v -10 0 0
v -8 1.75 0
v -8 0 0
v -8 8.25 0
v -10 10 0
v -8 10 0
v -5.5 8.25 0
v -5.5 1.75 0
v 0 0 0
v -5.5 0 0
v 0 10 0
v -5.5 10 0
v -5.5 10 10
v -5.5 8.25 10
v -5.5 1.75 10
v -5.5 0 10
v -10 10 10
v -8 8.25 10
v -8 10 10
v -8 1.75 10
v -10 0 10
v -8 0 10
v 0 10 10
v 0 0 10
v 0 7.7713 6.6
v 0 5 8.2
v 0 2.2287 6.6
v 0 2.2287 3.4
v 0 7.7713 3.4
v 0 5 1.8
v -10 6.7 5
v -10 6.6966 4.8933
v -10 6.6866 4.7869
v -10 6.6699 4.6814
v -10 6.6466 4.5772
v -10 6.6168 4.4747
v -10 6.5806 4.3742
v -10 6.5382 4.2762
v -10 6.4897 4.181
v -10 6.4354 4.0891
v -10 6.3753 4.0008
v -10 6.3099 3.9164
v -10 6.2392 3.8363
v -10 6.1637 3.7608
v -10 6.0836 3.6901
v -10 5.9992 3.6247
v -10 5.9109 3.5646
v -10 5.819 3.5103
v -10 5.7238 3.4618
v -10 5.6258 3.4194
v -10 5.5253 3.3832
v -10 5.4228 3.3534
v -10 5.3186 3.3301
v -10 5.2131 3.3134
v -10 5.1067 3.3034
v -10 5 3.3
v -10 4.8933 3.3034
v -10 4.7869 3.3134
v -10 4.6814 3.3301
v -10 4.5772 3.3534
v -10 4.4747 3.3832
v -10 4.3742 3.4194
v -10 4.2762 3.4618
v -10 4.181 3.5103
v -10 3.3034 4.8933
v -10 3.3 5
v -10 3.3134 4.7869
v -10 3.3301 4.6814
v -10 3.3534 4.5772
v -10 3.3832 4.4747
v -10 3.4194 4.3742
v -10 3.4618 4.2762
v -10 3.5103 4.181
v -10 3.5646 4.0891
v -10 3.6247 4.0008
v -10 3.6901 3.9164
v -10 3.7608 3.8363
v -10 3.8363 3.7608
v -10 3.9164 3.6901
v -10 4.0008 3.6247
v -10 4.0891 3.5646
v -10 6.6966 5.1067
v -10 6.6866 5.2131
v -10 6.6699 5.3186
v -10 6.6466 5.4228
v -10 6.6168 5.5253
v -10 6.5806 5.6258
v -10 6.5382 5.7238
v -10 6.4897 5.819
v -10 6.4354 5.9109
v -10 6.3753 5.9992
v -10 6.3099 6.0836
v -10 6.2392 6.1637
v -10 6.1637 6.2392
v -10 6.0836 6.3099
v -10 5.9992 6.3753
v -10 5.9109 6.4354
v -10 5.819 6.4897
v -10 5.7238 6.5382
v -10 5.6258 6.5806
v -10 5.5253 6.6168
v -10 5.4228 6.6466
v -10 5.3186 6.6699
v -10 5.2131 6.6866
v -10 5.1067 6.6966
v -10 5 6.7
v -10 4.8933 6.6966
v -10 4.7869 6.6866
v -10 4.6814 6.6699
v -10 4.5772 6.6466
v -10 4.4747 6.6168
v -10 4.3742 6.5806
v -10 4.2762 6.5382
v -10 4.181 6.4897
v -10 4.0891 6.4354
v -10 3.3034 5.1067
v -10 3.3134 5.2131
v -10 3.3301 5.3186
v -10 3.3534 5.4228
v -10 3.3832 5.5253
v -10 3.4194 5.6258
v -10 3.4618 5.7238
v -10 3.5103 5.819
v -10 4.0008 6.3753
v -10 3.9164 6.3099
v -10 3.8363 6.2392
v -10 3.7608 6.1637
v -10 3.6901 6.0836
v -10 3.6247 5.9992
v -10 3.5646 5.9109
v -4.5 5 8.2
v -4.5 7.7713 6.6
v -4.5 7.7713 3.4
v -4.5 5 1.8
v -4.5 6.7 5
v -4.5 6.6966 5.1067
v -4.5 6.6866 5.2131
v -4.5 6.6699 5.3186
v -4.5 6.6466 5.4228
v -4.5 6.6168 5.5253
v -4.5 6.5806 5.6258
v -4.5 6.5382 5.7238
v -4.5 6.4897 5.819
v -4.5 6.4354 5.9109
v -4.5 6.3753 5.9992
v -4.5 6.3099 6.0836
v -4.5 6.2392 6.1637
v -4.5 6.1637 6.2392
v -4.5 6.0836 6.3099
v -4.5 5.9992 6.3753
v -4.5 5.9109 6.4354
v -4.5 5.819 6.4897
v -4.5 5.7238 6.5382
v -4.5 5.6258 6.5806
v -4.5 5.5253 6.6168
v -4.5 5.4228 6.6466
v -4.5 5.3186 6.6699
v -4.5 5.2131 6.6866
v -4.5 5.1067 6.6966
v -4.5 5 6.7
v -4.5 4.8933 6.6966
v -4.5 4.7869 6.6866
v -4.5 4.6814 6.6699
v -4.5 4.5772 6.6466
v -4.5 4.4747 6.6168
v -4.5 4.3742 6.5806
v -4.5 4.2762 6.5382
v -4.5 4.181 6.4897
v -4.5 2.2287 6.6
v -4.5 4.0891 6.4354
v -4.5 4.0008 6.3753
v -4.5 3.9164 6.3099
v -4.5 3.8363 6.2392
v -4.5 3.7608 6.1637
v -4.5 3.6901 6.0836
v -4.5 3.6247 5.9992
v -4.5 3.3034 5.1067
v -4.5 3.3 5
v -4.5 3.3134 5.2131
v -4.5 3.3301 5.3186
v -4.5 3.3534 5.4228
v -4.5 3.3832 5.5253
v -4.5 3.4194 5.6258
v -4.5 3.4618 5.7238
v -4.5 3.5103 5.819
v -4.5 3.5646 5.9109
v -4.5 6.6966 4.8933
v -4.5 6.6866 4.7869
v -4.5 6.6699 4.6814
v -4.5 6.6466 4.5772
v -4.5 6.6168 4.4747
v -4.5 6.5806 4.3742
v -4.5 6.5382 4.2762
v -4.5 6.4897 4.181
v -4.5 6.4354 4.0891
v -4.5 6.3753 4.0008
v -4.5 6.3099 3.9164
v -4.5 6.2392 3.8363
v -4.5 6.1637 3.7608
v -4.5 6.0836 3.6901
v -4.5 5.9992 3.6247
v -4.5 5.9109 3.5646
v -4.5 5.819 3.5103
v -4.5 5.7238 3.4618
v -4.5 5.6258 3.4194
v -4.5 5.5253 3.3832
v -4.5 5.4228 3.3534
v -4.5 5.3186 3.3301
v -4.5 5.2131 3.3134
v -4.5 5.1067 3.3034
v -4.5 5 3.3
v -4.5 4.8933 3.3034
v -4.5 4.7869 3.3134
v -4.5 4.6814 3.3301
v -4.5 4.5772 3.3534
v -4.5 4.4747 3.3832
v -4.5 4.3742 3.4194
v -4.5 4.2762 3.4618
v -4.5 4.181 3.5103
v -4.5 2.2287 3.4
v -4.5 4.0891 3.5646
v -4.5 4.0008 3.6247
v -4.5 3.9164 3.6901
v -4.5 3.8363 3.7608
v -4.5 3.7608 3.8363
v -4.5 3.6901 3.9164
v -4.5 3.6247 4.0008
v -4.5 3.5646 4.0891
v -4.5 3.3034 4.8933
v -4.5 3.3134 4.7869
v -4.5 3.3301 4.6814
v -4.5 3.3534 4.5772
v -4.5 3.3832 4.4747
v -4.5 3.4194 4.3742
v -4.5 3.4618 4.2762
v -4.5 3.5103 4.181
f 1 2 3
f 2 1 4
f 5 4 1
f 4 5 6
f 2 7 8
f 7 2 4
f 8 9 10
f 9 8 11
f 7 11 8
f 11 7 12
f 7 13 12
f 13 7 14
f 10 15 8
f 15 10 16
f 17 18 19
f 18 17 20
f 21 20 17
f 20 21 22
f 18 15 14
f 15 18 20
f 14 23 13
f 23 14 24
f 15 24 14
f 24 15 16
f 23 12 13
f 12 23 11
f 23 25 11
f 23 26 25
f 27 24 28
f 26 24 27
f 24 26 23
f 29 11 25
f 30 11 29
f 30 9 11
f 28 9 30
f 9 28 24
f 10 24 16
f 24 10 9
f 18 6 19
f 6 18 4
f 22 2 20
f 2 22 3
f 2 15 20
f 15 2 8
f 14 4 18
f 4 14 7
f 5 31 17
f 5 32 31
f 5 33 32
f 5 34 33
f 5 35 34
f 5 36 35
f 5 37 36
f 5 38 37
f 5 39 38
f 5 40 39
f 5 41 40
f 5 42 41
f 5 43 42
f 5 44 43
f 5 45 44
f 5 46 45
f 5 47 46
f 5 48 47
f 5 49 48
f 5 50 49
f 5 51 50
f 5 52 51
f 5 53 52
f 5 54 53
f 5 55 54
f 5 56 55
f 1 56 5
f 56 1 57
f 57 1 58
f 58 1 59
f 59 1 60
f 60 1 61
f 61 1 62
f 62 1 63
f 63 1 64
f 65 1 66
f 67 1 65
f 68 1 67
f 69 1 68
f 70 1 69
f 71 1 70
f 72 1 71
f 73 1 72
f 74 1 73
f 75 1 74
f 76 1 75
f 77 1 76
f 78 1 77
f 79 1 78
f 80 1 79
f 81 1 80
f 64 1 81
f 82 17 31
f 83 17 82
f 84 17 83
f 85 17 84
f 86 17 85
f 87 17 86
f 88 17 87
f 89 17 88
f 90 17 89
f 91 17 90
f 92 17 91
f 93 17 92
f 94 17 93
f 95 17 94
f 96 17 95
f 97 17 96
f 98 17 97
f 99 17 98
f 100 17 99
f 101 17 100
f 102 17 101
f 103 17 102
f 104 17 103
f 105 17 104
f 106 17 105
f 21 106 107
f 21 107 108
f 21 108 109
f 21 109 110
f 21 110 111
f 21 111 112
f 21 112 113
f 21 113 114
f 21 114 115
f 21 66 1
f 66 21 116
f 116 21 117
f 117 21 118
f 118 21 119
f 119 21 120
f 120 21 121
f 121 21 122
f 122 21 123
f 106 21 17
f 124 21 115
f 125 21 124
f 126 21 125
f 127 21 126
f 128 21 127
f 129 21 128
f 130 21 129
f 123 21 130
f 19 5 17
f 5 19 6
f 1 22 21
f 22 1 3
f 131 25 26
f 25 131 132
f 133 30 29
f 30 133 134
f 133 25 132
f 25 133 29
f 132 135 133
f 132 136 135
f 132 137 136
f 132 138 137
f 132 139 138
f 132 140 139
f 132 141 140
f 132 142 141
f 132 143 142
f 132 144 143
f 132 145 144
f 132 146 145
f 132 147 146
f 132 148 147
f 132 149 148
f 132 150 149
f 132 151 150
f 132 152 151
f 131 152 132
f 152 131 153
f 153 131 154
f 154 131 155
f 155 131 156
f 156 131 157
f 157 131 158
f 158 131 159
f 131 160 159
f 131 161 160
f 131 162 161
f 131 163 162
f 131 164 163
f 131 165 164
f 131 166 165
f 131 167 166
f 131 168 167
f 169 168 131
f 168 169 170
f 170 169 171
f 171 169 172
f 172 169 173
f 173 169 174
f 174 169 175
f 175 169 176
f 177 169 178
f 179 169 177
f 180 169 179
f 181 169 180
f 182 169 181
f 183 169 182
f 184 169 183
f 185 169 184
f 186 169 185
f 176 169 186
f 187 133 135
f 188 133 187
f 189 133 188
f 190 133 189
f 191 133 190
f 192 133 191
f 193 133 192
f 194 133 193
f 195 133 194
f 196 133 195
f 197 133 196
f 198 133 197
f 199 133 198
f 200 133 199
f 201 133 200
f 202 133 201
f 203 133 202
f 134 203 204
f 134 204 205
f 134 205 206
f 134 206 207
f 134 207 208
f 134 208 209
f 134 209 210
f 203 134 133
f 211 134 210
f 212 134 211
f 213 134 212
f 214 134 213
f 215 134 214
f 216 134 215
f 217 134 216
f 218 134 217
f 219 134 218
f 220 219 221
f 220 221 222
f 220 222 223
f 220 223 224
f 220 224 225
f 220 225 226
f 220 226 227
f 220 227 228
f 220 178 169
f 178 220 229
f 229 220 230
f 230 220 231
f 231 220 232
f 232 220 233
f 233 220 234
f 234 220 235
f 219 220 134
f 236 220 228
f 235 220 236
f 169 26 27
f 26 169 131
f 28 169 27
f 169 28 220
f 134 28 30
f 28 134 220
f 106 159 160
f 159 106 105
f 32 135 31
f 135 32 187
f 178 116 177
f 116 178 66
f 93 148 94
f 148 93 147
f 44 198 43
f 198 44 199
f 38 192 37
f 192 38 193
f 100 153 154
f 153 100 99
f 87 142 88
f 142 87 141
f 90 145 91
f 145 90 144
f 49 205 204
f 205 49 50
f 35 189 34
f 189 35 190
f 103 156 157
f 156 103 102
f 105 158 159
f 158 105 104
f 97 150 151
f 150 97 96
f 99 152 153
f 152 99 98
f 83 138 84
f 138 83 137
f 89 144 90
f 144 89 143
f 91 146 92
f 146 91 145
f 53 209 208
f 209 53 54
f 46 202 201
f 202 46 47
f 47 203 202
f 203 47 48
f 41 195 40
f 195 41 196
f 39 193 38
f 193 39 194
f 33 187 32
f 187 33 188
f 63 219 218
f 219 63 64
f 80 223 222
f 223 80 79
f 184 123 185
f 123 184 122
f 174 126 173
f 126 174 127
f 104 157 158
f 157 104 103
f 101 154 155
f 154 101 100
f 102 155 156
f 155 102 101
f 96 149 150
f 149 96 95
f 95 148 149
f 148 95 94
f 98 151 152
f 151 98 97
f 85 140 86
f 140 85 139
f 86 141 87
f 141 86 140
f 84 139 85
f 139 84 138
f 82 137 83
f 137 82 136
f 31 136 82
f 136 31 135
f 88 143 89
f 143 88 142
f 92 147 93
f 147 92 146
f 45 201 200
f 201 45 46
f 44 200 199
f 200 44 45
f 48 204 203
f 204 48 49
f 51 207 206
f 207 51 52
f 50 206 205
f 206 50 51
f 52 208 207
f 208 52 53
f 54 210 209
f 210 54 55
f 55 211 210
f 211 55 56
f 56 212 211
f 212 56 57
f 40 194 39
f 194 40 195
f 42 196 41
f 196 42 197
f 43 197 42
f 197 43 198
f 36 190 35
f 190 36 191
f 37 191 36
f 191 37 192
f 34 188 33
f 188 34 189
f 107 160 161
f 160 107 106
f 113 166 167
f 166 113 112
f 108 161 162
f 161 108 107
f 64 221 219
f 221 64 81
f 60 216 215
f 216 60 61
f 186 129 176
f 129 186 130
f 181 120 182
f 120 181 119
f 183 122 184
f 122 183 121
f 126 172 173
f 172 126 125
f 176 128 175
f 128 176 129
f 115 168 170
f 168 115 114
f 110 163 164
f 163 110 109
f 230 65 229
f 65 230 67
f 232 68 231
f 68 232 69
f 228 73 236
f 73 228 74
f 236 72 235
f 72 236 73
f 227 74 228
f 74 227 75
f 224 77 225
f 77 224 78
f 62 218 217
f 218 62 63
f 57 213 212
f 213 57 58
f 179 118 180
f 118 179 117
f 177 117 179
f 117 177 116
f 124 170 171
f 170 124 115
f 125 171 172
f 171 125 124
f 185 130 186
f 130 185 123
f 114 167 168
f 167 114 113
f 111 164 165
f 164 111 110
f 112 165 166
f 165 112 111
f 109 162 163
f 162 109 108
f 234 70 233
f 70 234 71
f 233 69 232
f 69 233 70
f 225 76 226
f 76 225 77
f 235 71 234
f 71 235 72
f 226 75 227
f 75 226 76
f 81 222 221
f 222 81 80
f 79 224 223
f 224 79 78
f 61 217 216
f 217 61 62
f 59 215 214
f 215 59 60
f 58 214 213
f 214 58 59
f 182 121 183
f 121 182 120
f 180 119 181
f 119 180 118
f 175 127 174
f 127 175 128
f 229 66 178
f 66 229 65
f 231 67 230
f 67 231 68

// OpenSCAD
module main_mount(){
    cube([10,10,5.5]);
    translate([0,1.75,5.5])cube([10,6.5,2.5]);
    translate([0,0,8])cube([10,10,2]);
    }
    
module hole(){
    cylinder(h=3, r=3.5, $fn=6);
    translate([0,-3,0])cube([6,6,3]);
    }

module m3_hole(){
    translate([0,0,-3])cylinder(r=3.2, h=6, $fn=6);
    cylinder(r=1.6,h=30,$fn=100);
    }

module main(){
difference(){
    main_mount();
    translate([5,5,-1])cylinder(h=20,r=1.7, $fn=100);
    //translate([5,5,1.5])hole();
    translate([5,5,1.5])m3_hole();
}
}

rotate([0,-90,0])main();
//hole();
